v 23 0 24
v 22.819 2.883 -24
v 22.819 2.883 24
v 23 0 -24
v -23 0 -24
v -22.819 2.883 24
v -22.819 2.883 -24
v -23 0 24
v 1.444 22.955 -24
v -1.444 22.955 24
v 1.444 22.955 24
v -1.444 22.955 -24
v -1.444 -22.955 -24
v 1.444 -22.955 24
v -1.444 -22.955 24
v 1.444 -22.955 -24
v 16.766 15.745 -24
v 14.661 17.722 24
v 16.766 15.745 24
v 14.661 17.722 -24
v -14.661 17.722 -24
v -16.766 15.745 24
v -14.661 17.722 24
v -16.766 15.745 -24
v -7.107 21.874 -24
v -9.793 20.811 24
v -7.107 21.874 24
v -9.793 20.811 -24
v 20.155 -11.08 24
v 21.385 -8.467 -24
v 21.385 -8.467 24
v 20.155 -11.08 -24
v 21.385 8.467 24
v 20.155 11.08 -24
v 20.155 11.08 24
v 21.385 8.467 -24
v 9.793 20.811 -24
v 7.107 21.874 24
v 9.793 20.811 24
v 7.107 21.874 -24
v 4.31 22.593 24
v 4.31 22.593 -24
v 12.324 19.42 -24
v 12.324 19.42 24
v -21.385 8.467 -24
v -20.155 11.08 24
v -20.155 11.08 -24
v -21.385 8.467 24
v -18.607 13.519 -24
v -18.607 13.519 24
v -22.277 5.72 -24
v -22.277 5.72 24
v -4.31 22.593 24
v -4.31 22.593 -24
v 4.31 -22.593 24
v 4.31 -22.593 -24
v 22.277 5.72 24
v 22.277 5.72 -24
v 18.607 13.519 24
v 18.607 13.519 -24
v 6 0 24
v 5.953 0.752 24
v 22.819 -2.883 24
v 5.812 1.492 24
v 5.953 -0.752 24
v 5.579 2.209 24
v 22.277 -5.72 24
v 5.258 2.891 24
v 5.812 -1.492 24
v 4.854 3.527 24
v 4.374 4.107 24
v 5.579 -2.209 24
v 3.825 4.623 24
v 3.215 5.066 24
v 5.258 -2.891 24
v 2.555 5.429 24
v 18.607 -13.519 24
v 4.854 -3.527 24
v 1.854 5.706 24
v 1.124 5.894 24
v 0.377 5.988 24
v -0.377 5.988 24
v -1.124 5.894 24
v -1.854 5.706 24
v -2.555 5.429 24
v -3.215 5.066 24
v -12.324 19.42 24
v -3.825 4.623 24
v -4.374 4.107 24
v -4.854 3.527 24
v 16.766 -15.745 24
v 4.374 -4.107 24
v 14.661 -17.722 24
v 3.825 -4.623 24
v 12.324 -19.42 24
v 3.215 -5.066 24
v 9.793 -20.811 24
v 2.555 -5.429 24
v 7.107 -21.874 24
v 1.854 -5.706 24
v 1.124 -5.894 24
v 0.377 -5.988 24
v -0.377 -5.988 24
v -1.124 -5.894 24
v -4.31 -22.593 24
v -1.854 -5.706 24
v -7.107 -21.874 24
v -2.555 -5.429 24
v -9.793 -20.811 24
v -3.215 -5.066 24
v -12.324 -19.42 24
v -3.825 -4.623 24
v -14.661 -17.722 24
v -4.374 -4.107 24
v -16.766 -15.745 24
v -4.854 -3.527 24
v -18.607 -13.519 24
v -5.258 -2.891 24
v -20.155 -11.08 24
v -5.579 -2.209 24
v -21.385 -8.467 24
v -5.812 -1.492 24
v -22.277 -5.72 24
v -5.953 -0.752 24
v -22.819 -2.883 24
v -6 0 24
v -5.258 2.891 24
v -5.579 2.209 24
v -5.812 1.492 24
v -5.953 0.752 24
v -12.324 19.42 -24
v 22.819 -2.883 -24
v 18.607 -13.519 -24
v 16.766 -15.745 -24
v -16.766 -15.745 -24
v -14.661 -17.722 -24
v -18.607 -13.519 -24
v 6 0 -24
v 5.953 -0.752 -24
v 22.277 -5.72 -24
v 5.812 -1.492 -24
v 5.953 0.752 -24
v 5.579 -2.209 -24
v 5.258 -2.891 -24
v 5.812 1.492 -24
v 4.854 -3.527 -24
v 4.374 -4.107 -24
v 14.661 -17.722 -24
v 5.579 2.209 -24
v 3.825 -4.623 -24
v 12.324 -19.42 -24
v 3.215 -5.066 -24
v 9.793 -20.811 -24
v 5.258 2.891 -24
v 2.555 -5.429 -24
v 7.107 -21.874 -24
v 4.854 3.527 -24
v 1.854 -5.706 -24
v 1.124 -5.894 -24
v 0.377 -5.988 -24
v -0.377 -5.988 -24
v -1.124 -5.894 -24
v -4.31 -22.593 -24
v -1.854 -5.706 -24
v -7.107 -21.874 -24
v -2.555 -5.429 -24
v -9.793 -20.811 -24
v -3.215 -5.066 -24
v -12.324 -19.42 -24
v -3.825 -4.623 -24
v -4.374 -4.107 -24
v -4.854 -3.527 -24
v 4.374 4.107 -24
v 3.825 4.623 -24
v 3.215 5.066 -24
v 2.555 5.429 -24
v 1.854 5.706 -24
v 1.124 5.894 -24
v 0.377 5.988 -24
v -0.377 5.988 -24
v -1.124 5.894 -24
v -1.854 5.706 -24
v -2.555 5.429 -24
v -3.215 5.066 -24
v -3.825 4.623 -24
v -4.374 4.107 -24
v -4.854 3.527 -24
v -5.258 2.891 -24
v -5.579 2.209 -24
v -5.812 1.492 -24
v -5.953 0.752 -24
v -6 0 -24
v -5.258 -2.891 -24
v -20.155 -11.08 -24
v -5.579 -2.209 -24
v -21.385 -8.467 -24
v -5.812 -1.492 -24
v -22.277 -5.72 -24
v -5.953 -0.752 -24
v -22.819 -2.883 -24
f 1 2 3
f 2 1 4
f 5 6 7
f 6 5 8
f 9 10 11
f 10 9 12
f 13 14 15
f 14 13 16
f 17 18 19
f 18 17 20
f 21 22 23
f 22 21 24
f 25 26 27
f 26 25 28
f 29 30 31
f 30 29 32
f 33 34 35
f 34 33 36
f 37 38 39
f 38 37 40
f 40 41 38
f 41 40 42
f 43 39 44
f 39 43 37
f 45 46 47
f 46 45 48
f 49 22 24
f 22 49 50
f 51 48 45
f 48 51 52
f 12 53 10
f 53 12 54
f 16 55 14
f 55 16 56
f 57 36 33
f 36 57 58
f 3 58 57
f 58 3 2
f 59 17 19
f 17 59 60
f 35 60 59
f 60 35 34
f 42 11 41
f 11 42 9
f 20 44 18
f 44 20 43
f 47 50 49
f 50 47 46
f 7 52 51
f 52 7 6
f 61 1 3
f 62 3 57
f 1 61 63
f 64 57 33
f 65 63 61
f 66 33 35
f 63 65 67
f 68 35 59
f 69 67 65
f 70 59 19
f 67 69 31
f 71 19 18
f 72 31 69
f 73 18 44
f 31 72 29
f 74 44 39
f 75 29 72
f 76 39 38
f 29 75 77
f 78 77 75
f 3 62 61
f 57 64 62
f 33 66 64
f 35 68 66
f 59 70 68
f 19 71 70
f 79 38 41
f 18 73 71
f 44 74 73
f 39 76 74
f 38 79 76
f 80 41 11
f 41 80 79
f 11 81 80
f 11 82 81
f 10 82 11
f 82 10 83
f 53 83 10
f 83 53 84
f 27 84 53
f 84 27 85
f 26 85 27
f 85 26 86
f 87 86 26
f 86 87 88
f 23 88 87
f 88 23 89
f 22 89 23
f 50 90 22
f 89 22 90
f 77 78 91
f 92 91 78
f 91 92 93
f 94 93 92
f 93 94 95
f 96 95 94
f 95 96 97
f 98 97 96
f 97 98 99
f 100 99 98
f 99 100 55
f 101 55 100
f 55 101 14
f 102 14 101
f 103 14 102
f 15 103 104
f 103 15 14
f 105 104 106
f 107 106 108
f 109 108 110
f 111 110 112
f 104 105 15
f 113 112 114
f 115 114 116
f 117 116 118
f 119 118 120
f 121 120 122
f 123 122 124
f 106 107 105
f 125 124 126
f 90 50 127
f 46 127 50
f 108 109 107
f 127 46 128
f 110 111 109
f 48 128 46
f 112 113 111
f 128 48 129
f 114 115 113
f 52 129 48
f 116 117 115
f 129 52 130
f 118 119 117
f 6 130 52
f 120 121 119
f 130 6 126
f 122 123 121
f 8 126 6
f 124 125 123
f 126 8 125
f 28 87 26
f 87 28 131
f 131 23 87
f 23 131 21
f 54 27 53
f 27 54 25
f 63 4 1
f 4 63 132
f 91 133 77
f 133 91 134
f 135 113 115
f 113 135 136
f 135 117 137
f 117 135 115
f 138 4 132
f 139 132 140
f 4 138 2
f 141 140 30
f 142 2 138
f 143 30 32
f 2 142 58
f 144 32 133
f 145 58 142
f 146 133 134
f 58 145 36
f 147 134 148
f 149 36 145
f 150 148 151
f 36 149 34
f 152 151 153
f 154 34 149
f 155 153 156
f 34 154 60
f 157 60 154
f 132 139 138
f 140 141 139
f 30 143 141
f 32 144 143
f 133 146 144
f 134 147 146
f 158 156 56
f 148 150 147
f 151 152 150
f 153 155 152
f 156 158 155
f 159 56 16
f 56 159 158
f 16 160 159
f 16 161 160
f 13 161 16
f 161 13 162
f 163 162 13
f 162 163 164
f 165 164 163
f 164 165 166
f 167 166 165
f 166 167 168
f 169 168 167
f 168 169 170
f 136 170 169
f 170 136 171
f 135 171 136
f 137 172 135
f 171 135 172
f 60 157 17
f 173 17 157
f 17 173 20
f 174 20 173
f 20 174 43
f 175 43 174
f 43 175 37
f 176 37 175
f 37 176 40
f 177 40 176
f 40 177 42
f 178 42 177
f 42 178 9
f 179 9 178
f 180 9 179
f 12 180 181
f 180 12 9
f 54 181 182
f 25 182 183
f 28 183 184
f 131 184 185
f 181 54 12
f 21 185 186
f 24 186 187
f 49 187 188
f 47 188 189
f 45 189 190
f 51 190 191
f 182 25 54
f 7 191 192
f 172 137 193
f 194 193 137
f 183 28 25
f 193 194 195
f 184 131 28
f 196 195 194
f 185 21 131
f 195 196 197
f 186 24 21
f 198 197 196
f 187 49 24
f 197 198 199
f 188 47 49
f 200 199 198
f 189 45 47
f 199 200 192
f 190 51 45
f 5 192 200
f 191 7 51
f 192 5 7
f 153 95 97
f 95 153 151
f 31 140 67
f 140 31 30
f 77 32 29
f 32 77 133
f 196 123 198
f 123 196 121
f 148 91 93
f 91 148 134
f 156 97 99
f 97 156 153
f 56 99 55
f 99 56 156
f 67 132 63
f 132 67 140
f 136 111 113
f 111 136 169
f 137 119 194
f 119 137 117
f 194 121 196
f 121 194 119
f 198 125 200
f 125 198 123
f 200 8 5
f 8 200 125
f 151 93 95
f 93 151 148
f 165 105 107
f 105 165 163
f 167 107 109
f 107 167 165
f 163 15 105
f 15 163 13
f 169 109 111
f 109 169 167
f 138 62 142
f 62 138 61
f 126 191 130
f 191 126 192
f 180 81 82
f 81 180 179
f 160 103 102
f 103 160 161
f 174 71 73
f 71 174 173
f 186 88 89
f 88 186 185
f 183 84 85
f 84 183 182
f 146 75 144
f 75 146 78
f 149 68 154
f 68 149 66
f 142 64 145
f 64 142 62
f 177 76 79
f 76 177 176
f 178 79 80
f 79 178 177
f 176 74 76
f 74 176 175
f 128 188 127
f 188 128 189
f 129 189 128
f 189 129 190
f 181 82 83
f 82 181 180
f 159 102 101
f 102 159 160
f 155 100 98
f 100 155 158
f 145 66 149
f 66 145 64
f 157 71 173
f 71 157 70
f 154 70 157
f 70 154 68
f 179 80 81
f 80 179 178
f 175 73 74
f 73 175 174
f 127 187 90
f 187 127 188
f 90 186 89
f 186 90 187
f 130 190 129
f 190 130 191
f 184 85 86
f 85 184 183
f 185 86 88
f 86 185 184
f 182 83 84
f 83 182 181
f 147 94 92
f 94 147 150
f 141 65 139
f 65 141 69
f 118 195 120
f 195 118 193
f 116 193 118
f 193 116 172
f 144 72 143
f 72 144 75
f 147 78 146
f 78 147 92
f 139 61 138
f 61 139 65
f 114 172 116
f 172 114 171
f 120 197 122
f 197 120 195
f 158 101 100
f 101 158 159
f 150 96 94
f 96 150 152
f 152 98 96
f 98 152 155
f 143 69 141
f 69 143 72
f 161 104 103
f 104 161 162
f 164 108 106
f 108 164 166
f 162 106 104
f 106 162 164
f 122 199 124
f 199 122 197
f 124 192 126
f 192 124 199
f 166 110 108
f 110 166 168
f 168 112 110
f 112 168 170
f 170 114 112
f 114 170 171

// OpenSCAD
$fn = 50;


difference() {
	union() {
		translate(v = [0, 0, -24.0000000000]) {
			cylinder(h = 48, r = 23.0000000000);
		}
	}
	union() {
		translate(v = [0, 0, -100.0000000000]) {
			cylinder(h = 200, r = 6);
		}
	}
}
